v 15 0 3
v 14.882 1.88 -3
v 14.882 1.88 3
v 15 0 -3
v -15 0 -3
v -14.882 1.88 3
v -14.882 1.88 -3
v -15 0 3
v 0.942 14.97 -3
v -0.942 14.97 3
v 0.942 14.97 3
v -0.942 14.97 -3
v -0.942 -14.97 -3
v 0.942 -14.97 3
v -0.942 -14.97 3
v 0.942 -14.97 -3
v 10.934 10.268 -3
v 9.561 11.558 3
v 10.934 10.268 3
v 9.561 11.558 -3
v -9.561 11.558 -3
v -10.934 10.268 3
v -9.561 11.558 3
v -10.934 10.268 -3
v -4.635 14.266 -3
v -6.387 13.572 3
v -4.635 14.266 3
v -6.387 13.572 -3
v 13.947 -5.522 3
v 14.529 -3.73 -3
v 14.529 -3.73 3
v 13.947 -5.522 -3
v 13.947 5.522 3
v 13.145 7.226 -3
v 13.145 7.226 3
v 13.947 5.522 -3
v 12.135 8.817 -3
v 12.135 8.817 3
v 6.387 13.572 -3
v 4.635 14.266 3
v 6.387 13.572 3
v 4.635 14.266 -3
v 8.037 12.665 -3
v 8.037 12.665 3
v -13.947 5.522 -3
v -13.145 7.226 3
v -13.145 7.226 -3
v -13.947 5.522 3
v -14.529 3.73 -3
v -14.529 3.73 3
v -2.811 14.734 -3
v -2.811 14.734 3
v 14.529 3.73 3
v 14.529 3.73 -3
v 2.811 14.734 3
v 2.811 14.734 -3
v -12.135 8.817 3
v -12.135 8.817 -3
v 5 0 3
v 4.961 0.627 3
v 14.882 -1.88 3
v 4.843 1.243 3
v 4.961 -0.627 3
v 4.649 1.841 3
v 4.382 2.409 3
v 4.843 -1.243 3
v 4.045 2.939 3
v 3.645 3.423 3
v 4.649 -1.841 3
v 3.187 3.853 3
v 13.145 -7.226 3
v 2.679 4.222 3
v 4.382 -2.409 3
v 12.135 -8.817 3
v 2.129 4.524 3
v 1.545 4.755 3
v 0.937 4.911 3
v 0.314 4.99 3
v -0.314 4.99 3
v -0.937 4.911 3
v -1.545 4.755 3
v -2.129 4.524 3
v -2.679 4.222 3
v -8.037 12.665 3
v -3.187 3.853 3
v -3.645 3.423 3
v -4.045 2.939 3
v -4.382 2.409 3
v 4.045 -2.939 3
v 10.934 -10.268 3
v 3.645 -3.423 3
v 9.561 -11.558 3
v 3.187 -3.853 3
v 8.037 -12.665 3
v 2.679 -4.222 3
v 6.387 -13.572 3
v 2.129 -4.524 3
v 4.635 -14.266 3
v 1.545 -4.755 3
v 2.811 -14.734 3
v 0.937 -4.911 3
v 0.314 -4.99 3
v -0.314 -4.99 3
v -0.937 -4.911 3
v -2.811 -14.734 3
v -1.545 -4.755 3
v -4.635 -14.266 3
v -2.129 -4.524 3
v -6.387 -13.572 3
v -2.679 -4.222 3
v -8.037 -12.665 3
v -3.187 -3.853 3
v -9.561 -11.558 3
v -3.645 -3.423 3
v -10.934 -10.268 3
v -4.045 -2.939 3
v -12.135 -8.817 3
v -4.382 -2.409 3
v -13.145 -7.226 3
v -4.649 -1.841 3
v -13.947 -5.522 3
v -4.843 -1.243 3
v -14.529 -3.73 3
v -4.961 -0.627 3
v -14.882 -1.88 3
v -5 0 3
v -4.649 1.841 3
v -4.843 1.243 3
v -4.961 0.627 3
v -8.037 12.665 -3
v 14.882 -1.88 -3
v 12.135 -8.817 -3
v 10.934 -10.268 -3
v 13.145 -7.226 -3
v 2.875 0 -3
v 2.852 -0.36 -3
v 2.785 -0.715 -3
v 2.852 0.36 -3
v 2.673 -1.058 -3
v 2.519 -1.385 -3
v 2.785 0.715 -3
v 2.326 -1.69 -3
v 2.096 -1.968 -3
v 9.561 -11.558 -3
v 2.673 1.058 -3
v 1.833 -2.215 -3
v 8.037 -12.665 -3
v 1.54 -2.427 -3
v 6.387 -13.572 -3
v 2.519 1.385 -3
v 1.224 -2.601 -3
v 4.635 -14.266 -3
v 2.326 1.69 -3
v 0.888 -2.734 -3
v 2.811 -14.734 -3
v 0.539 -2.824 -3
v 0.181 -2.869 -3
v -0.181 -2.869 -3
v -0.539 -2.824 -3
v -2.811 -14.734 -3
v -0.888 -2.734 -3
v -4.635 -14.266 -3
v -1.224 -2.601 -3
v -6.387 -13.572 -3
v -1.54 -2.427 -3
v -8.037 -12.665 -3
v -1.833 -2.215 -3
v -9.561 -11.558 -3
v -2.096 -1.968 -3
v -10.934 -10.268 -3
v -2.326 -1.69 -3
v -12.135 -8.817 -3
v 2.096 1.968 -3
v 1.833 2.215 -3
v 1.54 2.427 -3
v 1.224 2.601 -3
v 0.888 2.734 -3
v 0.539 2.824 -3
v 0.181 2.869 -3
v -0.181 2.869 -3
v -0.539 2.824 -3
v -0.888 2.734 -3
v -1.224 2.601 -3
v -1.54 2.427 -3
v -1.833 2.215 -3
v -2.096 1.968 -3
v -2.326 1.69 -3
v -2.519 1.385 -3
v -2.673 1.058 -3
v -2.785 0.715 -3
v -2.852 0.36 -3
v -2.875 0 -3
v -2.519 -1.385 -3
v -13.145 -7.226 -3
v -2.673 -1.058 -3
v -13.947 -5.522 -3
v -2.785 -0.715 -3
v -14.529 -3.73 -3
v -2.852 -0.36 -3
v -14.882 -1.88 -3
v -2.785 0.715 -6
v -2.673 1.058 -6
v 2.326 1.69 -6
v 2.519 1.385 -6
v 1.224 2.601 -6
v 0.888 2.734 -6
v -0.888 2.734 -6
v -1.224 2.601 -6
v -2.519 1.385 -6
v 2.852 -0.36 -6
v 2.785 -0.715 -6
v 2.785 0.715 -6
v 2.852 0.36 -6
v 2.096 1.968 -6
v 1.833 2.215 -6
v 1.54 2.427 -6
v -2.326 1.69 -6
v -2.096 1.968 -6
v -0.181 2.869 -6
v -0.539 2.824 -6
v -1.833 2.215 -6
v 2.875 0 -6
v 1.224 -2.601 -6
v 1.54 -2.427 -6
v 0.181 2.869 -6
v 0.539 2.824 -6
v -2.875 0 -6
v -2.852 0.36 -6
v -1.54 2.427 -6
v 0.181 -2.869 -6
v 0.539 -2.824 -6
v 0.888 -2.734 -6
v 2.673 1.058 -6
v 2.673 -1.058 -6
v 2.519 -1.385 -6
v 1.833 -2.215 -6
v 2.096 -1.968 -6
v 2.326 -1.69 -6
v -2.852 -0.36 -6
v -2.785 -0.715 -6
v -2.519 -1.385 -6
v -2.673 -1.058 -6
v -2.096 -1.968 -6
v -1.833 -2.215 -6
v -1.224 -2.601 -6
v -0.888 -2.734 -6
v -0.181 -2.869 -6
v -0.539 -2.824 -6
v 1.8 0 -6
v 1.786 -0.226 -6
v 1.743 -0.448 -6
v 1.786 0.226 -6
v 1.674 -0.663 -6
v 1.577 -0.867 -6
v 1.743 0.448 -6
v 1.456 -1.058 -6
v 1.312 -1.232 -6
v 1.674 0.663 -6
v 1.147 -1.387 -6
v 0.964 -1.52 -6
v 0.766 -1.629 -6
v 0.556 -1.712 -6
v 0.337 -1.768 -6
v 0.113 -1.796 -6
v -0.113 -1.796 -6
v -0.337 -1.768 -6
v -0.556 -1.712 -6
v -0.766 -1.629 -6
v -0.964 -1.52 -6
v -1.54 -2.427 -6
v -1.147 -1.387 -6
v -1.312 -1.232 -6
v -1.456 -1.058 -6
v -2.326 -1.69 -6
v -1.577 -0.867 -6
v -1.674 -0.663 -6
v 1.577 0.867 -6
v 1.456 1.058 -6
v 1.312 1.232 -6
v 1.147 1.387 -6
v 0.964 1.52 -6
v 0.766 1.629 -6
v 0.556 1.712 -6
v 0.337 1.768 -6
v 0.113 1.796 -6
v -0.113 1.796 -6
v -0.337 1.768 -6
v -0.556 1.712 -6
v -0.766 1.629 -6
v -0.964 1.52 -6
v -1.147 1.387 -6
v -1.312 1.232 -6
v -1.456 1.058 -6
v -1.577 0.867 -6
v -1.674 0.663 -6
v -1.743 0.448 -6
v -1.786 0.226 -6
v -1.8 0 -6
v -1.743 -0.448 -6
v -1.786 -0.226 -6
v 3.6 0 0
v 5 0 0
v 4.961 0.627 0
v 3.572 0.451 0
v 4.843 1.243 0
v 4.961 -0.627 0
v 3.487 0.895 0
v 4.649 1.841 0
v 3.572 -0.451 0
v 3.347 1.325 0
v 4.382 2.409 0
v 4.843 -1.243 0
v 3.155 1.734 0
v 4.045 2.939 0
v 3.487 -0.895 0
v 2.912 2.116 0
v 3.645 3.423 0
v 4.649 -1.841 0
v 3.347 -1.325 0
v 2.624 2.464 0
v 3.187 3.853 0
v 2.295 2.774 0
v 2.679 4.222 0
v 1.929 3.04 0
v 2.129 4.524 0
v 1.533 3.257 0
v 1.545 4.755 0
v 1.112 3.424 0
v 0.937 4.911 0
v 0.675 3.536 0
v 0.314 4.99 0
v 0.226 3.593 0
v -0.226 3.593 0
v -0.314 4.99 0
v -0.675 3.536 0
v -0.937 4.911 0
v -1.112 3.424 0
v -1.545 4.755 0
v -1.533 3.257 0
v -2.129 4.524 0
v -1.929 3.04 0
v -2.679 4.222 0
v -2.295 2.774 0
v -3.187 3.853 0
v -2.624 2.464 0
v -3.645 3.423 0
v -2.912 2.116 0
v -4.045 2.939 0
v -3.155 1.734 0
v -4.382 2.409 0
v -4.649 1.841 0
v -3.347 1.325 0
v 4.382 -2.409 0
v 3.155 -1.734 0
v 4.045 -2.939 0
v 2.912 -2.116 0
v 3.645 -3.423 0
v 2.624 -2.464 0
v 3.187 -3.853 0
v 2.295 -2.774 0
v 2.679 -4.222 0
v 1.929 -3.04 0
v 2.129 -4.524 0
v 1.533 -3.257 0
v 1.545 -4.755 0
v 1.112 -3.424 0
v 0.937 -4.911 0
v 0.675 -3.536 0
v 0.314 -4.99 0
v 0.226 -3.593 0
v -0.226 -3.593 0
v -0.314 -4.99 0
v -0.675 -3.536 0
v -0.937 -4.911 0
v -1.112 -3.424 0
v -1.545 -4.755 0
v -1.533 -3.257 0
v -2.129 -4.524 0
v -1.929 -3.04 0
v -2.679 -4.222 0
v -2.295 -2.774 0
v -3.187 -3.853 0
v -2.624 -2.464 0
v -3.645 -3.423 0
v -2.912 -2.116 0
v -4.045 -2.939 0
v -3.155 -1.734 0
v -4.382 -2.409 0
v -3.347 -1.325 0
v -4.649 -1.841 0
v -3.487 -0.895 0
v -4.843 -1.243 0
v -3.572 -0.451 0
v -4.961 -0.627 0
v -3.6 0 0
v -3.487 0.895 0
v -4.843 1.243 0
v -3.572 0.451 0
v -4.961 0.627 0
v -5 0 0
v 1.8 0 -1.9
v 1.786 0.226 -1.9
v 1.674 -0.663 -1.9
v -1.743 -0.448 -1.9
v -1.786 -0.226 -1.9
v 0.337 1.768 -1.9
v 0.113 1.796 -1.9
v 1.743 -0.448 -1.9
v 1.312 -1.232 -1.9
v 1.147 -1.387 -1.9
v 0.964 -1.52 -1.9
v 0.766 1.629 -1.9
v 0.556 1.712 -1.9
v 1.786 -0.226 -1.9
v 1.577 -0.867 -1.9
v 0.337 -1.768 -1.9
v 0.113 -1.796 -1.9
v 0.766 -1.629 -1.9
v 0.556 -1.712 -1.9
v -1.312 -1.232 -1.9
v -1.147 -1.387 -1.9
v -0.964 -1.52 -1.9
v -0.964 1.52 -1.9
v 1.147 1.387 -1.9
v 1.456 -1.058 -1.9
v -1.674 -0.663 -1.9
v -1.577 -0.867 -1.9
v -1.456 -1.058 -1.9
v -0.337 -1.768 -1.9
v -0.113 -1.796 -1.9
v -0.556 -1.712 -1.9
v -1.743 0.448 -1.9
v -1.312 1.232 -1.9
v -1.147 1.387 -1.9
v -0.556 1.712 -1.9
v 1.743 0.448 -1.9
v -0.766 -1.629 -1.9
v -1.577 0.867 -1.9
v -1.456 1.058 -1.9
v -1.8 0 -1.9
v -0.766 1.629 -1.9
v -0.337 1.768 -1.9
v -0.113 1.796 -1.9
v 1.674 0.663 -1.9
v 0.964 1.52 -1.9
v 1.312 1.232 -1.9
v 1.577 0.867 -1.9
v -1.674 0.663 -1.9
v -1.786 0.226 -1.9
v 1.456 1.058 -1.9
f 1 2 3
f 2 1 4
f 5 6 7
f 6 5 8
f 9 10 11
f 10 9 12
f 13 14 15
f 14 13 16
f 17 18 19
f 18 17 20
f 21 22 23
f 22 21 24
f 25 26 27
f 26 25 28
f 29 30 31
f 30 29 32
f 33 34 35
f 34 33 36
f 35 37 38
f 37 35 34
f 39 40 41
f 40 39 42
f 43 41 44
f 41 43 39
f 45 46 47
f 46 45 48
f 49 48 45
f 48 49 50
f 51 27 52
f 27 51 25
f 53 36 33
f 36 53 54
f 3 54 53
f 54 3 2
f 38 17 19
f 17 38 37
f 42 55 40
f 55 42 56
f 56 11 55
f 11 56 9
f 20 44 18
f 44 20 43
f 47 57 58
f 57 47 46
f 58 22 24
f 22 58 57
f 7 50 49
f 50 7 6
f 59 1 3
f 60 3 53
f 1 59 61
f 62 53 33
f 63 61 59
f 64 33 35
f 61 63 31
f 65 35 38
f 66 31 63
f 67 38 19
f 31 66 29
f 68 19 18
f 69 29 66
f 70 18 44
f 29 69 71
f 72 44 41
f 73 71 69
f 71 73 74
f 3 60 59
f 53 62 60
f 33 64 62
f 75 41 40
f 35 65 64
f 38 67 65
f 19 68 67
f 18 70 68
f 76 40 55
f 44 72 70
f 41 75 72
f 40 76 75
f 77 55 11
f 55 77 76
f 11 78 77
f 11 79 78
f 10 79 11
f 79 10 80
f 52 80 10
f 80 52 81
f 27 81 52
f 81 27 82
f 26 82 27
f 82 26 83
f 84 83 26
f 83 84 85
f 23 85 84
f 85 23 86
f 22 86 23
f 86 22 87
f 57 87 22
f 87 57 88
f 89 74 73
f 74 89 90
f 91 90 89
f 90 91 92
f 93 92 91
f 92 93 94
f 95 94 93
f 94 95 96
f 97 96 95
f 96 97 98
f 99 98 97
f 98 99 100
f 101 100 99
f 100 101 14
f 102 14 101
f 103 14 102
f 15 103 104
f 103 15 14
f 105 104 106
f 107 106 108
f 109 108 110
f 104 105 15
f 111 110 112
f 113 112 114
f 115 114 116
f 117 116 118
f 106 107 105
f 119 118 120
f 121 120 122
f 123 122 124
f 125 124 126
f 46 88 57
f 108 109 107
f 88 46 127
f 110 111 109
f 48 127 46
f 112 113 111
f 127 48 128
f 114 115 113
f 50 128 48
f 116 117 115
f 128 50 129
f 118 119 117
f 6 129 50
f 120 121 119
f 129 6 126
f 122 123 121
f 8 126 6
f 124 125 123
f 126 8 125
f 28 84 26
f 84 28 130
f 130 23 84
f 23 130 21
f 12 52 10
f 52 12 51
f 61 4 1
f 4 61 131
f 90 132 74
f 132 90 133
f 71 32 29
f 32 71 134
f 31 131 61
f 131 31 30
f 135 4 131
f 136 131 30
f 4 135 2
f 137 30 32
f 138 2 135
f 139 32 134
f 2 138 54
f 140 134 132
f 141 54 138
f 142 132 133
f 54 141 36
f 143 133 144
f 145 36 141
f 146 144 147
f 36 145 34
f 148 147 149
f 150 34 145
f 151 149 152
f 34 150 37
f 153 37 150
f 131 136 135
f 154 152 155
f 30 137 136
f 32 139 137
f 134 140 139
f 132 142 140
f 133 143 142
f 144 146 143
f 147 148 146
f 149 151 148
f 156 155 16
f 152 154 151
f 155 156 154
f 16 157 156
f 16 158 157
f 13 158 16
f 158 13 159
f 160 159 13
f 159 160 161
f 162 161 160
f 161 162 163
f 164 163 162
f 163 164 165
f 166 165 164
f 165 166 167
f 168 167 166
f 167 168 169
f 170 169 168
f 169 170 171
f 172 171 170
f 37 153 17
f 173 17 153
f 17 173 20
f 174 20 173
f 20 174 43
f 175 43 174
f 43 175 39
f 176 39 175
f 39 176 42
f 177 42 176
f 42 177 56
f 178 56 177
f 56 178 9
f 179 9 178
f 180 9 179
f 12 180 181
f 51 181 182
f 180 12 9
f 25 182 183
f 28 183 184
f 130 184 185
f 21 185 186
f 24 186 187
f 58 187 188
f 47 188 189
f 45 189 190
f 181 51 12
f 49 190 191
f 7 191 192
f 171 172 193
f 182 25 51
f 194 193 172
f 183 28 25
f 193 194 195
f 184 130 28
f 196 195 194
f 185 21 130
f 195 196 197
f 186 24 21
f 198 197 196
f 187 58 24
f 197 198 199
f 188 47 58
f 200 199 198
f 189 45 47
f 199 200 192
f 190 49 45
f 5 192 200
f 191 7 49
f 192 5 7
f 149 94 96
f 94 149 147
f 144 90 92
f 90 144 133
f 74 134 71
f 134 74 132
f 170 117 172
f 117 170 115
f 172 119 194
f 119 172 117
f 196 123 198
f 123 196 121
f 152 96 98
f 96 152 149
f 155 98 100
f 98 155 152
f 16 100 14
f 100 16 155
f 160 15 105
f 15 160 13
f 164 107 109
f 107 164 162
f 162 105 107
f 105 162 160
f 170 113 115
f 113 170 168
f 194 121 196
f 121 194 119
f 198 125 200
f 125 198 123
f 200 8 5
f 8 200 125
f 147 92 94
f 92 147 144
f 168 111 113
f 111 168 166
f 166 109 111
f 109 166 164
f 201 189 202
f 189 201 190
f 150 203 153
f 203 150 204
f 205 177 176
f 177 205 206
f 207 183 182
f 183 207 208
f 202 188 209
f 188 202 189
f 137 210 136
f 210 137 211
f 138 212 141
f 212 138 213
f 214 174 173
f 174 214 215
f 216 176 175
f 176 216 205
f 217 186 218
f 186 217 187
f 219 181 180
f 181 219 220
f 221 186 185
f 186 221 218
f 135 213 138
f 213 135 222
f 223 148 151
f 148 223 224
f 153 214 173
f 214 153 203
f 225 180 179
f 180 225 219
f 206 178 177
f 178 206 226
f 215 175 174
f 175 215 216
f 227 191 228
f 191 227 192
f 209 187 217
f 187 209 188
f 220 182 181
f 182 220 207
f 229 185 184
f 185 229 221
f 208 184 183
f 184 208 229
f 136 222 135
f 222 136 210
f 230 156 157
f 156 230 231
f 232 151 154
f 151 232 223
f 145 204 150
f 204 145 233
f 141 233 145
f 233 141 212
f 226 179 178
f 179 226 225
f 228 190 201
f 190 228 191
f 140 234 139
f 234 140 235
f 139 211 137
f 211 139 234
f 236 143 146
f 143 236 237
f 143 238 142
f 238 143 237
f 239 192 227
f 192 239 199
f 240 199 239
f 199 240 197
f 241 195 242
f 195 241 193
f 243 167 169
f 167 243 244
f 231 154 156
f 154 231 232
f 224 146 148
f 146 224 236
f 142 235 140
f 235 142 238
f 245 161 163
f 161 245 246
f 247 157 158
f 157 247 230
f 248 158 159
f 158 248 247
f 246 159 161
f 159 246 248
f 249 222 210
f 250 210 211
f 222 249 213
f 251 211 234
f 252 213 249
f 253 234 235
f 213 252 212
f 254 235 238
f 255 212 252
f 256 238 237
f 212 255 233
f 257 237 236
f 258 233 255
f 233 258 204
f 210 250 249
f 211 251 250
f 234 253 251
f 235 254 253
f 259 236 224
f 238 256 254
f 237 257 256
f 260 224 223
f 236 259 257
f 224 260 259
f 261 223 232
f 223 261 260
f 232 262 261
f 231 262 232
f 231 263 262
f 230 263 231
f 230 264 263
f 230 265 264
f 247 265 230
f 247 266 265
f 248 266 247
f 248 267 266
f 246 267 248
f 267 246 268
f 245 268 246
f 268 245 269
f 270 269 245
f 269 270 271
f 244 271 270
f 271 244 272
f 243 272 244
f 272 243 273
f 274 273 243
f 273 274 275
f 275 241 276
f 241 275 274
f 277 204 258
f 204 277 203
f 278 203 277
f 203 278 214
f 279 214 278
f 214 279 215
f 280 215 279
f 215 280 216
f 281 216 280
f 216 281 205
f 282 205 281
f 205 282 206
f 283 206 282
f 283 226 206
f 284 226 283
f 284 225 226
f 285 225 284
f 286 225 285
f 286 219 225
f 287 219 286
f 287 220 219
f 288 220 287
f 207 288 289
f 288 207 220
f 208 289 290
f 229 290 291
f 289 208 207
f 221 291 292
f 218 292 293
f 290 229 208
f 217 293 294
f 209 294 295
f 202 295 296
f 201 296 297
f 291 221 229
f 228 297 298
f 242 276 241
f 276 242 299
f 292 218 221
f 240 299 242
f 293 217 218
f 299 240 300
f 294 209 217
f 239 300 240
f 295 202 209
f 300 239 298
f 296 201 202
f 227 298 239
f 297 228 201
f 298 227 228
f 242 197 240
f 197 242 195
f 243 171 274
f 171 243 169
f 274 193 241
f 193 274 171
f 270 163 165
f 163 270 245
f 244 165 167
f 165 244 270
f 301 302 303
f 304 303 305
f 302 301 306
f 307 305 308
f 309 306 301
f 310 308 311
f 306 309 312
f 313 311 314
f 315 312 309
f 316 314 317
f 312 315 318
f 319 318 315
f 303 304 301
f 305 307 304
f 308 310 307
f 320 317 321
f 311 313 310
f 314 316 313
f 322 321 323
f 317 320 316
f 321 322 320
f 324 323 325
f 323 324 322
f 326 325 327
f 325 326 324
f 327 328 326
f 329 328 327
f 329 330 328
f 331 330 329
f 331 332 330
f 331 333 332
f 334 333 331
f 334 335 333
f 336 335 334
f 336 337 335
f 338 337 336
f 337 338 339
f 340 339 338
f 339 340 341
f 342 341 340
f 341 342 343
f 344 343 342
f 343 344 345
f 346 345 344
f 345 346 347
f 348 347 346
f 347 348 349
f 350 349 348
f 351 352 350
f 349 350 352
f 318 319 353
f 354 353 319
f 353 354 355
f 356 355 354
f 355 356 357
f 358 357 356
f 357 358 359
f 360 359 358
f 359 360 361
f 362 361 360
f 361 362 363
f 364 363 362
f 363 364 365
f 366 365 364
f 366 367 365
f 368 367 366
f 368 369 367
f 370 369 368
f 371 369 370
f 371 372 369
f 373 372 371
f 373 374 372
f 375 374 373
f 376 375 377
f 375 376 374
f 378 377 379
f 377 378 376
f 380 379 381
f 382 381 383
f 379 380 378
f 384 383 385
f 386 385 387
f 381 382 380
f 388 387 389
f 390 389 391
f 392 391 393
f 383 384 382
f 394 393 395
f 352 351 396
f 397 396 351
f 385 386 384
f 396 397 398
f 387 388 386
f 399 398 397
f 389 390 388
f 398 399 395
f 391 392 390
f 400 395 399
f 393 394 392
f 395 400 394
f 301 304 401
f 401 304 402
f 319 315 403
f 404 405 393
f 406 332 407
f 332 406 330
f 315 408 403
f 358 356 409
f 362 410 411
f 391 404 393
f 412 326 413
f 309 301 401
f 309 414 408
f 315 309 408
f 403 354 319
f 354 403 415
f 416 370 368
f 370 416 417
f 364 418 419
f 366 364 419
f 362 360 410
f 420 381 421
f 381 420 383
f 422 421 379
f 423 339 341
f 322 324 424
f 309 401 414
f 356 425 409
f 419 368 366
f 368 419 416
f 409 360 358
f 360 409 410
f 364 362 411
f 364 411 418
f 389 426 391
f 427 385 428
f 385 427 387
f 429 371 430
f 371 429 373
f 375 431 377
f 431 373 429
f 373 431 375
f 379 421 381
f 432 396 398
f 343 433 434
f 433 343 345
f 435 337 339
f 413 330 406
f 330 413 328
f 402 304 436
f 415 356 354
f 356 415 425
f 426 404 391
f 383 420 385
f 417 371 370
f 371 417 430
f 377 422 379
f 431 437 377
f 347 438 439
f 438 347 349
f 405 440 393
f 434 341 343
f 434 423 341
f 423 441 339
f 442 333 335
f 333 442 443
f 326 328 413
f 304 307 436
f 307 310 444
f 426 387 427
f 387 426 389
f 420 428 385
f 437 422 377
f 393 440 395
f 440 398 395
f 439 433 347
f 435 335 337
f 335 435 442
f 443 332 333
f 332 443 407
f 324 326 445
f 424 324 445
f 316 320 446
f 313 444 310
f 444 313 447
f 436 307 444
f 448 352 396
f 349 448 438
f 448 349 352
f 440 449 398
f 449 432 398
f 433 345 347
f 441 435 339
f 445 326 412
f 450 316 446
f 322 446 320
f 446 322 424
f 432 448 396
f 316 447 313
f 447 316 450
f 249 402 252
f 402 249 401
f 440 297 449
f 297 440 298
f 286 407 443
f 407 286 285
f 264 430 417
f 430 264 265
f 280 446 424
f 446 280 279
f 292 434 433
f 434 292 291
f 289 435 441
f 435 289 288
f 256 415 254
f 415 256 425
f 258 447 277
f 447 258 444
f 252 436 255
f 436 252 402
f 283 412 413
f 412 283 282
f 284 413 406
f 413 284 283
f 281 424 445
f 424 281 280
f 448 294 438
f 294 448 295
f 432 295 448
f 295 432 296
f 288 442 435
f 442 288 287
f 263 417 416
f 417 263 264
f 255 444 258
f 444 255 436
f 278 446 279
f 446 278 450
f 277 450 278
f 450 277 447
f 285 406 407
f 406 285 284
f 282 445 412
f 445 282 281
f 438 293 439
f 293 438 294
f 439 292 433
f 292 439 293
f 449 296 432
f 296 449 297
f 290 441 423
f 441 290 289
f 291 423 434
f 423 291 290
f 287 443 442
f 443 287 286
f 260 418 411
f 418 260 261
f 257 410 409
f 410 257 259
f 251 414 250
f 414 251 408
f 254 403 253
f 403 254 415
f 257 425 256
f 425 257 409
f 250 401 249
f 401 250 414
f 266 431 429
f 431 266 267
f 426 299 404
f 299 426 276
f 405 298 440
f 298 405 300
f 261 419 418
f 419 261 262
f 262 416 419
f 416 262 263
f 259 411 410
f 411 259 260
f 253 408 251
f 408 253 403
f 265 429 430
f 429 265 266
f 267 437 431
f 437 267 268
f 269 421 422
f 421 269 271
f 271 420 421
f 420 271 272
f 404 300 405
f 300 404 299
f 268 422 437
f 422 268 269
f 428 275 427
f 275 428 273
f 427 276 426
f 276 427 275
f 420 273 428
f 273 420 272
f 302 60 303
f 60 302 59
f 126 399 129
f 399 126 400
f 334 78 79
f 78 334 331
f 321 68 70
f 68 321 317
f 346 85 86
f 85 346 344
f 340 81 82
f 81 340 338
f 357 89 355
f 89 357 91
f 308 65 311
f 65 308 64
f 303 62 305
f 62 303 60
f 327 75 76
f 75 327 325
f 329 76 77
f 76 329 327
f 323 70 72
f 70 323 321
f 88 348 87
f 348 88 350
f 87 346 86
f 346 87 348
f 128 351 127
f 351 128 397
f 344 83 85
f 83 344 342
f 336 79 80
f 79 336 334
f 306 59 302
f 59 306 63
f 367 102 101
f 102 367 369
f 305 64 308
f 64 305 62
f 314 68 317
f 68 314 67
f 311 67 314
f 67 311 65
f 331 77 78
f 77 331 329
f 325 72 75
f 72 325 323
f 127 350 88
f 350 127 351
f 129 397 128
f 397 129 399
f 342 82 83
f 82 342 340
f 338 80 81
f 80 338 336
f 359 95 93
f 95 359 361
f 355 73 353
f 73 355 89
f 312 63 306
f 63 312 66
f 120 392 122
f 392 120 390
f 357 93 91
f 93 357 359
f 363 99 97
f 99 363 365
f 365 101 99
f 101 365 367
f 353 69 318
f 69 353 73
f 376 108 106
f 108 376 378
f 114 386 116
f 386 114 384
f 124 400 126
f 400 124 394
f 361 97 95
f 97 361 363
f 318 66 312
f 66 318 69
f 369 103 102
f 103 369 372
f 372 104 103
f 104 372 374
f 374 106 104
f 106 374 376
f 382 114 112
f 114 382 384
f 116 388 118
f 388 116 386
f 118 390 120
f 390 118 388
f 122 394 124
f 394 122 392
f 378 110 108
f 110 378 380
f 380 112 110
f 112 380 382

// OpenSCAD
$fn = 50;


difference() {
	union() {
		translate(v = [0, 0, -3.0000000000]) {
			cylinder(h = 6, r = 15.0000000000);
		}
		#translate(v = [0, 0, -6.0000000000]) {
			cylinder(h = 6, r = 2.8750000000);
		}
	}
	union() {
		translate(v = [0, 0, 0]) {
			rotate(a = [0, 0, 0]) {
				difference() {
					union() {
						translate(v = [0, 0, -6.0000000000]) {
							cylinder(h = 6, r = 1.5000000000);
						}
						translate(v = [0, 0, -1.9000000000]) {
							cylinder(h = 1.9000000000, r1 = 1.8000000000, r2 = 3.6000000000);
						}
						translate(v = [0, 0, -6.0000000000]) {
							cylinder(h = 6, r = 1.8000000000);
						}
						translate(v = [0, 0, -6.0000000000]) {
							cylinder(h = 6, r = 1.5000000000);
						}
					}
					union();
				}
			}
		}
		#cylinder(h = 3, r = 5.0000000000);
	}
}
